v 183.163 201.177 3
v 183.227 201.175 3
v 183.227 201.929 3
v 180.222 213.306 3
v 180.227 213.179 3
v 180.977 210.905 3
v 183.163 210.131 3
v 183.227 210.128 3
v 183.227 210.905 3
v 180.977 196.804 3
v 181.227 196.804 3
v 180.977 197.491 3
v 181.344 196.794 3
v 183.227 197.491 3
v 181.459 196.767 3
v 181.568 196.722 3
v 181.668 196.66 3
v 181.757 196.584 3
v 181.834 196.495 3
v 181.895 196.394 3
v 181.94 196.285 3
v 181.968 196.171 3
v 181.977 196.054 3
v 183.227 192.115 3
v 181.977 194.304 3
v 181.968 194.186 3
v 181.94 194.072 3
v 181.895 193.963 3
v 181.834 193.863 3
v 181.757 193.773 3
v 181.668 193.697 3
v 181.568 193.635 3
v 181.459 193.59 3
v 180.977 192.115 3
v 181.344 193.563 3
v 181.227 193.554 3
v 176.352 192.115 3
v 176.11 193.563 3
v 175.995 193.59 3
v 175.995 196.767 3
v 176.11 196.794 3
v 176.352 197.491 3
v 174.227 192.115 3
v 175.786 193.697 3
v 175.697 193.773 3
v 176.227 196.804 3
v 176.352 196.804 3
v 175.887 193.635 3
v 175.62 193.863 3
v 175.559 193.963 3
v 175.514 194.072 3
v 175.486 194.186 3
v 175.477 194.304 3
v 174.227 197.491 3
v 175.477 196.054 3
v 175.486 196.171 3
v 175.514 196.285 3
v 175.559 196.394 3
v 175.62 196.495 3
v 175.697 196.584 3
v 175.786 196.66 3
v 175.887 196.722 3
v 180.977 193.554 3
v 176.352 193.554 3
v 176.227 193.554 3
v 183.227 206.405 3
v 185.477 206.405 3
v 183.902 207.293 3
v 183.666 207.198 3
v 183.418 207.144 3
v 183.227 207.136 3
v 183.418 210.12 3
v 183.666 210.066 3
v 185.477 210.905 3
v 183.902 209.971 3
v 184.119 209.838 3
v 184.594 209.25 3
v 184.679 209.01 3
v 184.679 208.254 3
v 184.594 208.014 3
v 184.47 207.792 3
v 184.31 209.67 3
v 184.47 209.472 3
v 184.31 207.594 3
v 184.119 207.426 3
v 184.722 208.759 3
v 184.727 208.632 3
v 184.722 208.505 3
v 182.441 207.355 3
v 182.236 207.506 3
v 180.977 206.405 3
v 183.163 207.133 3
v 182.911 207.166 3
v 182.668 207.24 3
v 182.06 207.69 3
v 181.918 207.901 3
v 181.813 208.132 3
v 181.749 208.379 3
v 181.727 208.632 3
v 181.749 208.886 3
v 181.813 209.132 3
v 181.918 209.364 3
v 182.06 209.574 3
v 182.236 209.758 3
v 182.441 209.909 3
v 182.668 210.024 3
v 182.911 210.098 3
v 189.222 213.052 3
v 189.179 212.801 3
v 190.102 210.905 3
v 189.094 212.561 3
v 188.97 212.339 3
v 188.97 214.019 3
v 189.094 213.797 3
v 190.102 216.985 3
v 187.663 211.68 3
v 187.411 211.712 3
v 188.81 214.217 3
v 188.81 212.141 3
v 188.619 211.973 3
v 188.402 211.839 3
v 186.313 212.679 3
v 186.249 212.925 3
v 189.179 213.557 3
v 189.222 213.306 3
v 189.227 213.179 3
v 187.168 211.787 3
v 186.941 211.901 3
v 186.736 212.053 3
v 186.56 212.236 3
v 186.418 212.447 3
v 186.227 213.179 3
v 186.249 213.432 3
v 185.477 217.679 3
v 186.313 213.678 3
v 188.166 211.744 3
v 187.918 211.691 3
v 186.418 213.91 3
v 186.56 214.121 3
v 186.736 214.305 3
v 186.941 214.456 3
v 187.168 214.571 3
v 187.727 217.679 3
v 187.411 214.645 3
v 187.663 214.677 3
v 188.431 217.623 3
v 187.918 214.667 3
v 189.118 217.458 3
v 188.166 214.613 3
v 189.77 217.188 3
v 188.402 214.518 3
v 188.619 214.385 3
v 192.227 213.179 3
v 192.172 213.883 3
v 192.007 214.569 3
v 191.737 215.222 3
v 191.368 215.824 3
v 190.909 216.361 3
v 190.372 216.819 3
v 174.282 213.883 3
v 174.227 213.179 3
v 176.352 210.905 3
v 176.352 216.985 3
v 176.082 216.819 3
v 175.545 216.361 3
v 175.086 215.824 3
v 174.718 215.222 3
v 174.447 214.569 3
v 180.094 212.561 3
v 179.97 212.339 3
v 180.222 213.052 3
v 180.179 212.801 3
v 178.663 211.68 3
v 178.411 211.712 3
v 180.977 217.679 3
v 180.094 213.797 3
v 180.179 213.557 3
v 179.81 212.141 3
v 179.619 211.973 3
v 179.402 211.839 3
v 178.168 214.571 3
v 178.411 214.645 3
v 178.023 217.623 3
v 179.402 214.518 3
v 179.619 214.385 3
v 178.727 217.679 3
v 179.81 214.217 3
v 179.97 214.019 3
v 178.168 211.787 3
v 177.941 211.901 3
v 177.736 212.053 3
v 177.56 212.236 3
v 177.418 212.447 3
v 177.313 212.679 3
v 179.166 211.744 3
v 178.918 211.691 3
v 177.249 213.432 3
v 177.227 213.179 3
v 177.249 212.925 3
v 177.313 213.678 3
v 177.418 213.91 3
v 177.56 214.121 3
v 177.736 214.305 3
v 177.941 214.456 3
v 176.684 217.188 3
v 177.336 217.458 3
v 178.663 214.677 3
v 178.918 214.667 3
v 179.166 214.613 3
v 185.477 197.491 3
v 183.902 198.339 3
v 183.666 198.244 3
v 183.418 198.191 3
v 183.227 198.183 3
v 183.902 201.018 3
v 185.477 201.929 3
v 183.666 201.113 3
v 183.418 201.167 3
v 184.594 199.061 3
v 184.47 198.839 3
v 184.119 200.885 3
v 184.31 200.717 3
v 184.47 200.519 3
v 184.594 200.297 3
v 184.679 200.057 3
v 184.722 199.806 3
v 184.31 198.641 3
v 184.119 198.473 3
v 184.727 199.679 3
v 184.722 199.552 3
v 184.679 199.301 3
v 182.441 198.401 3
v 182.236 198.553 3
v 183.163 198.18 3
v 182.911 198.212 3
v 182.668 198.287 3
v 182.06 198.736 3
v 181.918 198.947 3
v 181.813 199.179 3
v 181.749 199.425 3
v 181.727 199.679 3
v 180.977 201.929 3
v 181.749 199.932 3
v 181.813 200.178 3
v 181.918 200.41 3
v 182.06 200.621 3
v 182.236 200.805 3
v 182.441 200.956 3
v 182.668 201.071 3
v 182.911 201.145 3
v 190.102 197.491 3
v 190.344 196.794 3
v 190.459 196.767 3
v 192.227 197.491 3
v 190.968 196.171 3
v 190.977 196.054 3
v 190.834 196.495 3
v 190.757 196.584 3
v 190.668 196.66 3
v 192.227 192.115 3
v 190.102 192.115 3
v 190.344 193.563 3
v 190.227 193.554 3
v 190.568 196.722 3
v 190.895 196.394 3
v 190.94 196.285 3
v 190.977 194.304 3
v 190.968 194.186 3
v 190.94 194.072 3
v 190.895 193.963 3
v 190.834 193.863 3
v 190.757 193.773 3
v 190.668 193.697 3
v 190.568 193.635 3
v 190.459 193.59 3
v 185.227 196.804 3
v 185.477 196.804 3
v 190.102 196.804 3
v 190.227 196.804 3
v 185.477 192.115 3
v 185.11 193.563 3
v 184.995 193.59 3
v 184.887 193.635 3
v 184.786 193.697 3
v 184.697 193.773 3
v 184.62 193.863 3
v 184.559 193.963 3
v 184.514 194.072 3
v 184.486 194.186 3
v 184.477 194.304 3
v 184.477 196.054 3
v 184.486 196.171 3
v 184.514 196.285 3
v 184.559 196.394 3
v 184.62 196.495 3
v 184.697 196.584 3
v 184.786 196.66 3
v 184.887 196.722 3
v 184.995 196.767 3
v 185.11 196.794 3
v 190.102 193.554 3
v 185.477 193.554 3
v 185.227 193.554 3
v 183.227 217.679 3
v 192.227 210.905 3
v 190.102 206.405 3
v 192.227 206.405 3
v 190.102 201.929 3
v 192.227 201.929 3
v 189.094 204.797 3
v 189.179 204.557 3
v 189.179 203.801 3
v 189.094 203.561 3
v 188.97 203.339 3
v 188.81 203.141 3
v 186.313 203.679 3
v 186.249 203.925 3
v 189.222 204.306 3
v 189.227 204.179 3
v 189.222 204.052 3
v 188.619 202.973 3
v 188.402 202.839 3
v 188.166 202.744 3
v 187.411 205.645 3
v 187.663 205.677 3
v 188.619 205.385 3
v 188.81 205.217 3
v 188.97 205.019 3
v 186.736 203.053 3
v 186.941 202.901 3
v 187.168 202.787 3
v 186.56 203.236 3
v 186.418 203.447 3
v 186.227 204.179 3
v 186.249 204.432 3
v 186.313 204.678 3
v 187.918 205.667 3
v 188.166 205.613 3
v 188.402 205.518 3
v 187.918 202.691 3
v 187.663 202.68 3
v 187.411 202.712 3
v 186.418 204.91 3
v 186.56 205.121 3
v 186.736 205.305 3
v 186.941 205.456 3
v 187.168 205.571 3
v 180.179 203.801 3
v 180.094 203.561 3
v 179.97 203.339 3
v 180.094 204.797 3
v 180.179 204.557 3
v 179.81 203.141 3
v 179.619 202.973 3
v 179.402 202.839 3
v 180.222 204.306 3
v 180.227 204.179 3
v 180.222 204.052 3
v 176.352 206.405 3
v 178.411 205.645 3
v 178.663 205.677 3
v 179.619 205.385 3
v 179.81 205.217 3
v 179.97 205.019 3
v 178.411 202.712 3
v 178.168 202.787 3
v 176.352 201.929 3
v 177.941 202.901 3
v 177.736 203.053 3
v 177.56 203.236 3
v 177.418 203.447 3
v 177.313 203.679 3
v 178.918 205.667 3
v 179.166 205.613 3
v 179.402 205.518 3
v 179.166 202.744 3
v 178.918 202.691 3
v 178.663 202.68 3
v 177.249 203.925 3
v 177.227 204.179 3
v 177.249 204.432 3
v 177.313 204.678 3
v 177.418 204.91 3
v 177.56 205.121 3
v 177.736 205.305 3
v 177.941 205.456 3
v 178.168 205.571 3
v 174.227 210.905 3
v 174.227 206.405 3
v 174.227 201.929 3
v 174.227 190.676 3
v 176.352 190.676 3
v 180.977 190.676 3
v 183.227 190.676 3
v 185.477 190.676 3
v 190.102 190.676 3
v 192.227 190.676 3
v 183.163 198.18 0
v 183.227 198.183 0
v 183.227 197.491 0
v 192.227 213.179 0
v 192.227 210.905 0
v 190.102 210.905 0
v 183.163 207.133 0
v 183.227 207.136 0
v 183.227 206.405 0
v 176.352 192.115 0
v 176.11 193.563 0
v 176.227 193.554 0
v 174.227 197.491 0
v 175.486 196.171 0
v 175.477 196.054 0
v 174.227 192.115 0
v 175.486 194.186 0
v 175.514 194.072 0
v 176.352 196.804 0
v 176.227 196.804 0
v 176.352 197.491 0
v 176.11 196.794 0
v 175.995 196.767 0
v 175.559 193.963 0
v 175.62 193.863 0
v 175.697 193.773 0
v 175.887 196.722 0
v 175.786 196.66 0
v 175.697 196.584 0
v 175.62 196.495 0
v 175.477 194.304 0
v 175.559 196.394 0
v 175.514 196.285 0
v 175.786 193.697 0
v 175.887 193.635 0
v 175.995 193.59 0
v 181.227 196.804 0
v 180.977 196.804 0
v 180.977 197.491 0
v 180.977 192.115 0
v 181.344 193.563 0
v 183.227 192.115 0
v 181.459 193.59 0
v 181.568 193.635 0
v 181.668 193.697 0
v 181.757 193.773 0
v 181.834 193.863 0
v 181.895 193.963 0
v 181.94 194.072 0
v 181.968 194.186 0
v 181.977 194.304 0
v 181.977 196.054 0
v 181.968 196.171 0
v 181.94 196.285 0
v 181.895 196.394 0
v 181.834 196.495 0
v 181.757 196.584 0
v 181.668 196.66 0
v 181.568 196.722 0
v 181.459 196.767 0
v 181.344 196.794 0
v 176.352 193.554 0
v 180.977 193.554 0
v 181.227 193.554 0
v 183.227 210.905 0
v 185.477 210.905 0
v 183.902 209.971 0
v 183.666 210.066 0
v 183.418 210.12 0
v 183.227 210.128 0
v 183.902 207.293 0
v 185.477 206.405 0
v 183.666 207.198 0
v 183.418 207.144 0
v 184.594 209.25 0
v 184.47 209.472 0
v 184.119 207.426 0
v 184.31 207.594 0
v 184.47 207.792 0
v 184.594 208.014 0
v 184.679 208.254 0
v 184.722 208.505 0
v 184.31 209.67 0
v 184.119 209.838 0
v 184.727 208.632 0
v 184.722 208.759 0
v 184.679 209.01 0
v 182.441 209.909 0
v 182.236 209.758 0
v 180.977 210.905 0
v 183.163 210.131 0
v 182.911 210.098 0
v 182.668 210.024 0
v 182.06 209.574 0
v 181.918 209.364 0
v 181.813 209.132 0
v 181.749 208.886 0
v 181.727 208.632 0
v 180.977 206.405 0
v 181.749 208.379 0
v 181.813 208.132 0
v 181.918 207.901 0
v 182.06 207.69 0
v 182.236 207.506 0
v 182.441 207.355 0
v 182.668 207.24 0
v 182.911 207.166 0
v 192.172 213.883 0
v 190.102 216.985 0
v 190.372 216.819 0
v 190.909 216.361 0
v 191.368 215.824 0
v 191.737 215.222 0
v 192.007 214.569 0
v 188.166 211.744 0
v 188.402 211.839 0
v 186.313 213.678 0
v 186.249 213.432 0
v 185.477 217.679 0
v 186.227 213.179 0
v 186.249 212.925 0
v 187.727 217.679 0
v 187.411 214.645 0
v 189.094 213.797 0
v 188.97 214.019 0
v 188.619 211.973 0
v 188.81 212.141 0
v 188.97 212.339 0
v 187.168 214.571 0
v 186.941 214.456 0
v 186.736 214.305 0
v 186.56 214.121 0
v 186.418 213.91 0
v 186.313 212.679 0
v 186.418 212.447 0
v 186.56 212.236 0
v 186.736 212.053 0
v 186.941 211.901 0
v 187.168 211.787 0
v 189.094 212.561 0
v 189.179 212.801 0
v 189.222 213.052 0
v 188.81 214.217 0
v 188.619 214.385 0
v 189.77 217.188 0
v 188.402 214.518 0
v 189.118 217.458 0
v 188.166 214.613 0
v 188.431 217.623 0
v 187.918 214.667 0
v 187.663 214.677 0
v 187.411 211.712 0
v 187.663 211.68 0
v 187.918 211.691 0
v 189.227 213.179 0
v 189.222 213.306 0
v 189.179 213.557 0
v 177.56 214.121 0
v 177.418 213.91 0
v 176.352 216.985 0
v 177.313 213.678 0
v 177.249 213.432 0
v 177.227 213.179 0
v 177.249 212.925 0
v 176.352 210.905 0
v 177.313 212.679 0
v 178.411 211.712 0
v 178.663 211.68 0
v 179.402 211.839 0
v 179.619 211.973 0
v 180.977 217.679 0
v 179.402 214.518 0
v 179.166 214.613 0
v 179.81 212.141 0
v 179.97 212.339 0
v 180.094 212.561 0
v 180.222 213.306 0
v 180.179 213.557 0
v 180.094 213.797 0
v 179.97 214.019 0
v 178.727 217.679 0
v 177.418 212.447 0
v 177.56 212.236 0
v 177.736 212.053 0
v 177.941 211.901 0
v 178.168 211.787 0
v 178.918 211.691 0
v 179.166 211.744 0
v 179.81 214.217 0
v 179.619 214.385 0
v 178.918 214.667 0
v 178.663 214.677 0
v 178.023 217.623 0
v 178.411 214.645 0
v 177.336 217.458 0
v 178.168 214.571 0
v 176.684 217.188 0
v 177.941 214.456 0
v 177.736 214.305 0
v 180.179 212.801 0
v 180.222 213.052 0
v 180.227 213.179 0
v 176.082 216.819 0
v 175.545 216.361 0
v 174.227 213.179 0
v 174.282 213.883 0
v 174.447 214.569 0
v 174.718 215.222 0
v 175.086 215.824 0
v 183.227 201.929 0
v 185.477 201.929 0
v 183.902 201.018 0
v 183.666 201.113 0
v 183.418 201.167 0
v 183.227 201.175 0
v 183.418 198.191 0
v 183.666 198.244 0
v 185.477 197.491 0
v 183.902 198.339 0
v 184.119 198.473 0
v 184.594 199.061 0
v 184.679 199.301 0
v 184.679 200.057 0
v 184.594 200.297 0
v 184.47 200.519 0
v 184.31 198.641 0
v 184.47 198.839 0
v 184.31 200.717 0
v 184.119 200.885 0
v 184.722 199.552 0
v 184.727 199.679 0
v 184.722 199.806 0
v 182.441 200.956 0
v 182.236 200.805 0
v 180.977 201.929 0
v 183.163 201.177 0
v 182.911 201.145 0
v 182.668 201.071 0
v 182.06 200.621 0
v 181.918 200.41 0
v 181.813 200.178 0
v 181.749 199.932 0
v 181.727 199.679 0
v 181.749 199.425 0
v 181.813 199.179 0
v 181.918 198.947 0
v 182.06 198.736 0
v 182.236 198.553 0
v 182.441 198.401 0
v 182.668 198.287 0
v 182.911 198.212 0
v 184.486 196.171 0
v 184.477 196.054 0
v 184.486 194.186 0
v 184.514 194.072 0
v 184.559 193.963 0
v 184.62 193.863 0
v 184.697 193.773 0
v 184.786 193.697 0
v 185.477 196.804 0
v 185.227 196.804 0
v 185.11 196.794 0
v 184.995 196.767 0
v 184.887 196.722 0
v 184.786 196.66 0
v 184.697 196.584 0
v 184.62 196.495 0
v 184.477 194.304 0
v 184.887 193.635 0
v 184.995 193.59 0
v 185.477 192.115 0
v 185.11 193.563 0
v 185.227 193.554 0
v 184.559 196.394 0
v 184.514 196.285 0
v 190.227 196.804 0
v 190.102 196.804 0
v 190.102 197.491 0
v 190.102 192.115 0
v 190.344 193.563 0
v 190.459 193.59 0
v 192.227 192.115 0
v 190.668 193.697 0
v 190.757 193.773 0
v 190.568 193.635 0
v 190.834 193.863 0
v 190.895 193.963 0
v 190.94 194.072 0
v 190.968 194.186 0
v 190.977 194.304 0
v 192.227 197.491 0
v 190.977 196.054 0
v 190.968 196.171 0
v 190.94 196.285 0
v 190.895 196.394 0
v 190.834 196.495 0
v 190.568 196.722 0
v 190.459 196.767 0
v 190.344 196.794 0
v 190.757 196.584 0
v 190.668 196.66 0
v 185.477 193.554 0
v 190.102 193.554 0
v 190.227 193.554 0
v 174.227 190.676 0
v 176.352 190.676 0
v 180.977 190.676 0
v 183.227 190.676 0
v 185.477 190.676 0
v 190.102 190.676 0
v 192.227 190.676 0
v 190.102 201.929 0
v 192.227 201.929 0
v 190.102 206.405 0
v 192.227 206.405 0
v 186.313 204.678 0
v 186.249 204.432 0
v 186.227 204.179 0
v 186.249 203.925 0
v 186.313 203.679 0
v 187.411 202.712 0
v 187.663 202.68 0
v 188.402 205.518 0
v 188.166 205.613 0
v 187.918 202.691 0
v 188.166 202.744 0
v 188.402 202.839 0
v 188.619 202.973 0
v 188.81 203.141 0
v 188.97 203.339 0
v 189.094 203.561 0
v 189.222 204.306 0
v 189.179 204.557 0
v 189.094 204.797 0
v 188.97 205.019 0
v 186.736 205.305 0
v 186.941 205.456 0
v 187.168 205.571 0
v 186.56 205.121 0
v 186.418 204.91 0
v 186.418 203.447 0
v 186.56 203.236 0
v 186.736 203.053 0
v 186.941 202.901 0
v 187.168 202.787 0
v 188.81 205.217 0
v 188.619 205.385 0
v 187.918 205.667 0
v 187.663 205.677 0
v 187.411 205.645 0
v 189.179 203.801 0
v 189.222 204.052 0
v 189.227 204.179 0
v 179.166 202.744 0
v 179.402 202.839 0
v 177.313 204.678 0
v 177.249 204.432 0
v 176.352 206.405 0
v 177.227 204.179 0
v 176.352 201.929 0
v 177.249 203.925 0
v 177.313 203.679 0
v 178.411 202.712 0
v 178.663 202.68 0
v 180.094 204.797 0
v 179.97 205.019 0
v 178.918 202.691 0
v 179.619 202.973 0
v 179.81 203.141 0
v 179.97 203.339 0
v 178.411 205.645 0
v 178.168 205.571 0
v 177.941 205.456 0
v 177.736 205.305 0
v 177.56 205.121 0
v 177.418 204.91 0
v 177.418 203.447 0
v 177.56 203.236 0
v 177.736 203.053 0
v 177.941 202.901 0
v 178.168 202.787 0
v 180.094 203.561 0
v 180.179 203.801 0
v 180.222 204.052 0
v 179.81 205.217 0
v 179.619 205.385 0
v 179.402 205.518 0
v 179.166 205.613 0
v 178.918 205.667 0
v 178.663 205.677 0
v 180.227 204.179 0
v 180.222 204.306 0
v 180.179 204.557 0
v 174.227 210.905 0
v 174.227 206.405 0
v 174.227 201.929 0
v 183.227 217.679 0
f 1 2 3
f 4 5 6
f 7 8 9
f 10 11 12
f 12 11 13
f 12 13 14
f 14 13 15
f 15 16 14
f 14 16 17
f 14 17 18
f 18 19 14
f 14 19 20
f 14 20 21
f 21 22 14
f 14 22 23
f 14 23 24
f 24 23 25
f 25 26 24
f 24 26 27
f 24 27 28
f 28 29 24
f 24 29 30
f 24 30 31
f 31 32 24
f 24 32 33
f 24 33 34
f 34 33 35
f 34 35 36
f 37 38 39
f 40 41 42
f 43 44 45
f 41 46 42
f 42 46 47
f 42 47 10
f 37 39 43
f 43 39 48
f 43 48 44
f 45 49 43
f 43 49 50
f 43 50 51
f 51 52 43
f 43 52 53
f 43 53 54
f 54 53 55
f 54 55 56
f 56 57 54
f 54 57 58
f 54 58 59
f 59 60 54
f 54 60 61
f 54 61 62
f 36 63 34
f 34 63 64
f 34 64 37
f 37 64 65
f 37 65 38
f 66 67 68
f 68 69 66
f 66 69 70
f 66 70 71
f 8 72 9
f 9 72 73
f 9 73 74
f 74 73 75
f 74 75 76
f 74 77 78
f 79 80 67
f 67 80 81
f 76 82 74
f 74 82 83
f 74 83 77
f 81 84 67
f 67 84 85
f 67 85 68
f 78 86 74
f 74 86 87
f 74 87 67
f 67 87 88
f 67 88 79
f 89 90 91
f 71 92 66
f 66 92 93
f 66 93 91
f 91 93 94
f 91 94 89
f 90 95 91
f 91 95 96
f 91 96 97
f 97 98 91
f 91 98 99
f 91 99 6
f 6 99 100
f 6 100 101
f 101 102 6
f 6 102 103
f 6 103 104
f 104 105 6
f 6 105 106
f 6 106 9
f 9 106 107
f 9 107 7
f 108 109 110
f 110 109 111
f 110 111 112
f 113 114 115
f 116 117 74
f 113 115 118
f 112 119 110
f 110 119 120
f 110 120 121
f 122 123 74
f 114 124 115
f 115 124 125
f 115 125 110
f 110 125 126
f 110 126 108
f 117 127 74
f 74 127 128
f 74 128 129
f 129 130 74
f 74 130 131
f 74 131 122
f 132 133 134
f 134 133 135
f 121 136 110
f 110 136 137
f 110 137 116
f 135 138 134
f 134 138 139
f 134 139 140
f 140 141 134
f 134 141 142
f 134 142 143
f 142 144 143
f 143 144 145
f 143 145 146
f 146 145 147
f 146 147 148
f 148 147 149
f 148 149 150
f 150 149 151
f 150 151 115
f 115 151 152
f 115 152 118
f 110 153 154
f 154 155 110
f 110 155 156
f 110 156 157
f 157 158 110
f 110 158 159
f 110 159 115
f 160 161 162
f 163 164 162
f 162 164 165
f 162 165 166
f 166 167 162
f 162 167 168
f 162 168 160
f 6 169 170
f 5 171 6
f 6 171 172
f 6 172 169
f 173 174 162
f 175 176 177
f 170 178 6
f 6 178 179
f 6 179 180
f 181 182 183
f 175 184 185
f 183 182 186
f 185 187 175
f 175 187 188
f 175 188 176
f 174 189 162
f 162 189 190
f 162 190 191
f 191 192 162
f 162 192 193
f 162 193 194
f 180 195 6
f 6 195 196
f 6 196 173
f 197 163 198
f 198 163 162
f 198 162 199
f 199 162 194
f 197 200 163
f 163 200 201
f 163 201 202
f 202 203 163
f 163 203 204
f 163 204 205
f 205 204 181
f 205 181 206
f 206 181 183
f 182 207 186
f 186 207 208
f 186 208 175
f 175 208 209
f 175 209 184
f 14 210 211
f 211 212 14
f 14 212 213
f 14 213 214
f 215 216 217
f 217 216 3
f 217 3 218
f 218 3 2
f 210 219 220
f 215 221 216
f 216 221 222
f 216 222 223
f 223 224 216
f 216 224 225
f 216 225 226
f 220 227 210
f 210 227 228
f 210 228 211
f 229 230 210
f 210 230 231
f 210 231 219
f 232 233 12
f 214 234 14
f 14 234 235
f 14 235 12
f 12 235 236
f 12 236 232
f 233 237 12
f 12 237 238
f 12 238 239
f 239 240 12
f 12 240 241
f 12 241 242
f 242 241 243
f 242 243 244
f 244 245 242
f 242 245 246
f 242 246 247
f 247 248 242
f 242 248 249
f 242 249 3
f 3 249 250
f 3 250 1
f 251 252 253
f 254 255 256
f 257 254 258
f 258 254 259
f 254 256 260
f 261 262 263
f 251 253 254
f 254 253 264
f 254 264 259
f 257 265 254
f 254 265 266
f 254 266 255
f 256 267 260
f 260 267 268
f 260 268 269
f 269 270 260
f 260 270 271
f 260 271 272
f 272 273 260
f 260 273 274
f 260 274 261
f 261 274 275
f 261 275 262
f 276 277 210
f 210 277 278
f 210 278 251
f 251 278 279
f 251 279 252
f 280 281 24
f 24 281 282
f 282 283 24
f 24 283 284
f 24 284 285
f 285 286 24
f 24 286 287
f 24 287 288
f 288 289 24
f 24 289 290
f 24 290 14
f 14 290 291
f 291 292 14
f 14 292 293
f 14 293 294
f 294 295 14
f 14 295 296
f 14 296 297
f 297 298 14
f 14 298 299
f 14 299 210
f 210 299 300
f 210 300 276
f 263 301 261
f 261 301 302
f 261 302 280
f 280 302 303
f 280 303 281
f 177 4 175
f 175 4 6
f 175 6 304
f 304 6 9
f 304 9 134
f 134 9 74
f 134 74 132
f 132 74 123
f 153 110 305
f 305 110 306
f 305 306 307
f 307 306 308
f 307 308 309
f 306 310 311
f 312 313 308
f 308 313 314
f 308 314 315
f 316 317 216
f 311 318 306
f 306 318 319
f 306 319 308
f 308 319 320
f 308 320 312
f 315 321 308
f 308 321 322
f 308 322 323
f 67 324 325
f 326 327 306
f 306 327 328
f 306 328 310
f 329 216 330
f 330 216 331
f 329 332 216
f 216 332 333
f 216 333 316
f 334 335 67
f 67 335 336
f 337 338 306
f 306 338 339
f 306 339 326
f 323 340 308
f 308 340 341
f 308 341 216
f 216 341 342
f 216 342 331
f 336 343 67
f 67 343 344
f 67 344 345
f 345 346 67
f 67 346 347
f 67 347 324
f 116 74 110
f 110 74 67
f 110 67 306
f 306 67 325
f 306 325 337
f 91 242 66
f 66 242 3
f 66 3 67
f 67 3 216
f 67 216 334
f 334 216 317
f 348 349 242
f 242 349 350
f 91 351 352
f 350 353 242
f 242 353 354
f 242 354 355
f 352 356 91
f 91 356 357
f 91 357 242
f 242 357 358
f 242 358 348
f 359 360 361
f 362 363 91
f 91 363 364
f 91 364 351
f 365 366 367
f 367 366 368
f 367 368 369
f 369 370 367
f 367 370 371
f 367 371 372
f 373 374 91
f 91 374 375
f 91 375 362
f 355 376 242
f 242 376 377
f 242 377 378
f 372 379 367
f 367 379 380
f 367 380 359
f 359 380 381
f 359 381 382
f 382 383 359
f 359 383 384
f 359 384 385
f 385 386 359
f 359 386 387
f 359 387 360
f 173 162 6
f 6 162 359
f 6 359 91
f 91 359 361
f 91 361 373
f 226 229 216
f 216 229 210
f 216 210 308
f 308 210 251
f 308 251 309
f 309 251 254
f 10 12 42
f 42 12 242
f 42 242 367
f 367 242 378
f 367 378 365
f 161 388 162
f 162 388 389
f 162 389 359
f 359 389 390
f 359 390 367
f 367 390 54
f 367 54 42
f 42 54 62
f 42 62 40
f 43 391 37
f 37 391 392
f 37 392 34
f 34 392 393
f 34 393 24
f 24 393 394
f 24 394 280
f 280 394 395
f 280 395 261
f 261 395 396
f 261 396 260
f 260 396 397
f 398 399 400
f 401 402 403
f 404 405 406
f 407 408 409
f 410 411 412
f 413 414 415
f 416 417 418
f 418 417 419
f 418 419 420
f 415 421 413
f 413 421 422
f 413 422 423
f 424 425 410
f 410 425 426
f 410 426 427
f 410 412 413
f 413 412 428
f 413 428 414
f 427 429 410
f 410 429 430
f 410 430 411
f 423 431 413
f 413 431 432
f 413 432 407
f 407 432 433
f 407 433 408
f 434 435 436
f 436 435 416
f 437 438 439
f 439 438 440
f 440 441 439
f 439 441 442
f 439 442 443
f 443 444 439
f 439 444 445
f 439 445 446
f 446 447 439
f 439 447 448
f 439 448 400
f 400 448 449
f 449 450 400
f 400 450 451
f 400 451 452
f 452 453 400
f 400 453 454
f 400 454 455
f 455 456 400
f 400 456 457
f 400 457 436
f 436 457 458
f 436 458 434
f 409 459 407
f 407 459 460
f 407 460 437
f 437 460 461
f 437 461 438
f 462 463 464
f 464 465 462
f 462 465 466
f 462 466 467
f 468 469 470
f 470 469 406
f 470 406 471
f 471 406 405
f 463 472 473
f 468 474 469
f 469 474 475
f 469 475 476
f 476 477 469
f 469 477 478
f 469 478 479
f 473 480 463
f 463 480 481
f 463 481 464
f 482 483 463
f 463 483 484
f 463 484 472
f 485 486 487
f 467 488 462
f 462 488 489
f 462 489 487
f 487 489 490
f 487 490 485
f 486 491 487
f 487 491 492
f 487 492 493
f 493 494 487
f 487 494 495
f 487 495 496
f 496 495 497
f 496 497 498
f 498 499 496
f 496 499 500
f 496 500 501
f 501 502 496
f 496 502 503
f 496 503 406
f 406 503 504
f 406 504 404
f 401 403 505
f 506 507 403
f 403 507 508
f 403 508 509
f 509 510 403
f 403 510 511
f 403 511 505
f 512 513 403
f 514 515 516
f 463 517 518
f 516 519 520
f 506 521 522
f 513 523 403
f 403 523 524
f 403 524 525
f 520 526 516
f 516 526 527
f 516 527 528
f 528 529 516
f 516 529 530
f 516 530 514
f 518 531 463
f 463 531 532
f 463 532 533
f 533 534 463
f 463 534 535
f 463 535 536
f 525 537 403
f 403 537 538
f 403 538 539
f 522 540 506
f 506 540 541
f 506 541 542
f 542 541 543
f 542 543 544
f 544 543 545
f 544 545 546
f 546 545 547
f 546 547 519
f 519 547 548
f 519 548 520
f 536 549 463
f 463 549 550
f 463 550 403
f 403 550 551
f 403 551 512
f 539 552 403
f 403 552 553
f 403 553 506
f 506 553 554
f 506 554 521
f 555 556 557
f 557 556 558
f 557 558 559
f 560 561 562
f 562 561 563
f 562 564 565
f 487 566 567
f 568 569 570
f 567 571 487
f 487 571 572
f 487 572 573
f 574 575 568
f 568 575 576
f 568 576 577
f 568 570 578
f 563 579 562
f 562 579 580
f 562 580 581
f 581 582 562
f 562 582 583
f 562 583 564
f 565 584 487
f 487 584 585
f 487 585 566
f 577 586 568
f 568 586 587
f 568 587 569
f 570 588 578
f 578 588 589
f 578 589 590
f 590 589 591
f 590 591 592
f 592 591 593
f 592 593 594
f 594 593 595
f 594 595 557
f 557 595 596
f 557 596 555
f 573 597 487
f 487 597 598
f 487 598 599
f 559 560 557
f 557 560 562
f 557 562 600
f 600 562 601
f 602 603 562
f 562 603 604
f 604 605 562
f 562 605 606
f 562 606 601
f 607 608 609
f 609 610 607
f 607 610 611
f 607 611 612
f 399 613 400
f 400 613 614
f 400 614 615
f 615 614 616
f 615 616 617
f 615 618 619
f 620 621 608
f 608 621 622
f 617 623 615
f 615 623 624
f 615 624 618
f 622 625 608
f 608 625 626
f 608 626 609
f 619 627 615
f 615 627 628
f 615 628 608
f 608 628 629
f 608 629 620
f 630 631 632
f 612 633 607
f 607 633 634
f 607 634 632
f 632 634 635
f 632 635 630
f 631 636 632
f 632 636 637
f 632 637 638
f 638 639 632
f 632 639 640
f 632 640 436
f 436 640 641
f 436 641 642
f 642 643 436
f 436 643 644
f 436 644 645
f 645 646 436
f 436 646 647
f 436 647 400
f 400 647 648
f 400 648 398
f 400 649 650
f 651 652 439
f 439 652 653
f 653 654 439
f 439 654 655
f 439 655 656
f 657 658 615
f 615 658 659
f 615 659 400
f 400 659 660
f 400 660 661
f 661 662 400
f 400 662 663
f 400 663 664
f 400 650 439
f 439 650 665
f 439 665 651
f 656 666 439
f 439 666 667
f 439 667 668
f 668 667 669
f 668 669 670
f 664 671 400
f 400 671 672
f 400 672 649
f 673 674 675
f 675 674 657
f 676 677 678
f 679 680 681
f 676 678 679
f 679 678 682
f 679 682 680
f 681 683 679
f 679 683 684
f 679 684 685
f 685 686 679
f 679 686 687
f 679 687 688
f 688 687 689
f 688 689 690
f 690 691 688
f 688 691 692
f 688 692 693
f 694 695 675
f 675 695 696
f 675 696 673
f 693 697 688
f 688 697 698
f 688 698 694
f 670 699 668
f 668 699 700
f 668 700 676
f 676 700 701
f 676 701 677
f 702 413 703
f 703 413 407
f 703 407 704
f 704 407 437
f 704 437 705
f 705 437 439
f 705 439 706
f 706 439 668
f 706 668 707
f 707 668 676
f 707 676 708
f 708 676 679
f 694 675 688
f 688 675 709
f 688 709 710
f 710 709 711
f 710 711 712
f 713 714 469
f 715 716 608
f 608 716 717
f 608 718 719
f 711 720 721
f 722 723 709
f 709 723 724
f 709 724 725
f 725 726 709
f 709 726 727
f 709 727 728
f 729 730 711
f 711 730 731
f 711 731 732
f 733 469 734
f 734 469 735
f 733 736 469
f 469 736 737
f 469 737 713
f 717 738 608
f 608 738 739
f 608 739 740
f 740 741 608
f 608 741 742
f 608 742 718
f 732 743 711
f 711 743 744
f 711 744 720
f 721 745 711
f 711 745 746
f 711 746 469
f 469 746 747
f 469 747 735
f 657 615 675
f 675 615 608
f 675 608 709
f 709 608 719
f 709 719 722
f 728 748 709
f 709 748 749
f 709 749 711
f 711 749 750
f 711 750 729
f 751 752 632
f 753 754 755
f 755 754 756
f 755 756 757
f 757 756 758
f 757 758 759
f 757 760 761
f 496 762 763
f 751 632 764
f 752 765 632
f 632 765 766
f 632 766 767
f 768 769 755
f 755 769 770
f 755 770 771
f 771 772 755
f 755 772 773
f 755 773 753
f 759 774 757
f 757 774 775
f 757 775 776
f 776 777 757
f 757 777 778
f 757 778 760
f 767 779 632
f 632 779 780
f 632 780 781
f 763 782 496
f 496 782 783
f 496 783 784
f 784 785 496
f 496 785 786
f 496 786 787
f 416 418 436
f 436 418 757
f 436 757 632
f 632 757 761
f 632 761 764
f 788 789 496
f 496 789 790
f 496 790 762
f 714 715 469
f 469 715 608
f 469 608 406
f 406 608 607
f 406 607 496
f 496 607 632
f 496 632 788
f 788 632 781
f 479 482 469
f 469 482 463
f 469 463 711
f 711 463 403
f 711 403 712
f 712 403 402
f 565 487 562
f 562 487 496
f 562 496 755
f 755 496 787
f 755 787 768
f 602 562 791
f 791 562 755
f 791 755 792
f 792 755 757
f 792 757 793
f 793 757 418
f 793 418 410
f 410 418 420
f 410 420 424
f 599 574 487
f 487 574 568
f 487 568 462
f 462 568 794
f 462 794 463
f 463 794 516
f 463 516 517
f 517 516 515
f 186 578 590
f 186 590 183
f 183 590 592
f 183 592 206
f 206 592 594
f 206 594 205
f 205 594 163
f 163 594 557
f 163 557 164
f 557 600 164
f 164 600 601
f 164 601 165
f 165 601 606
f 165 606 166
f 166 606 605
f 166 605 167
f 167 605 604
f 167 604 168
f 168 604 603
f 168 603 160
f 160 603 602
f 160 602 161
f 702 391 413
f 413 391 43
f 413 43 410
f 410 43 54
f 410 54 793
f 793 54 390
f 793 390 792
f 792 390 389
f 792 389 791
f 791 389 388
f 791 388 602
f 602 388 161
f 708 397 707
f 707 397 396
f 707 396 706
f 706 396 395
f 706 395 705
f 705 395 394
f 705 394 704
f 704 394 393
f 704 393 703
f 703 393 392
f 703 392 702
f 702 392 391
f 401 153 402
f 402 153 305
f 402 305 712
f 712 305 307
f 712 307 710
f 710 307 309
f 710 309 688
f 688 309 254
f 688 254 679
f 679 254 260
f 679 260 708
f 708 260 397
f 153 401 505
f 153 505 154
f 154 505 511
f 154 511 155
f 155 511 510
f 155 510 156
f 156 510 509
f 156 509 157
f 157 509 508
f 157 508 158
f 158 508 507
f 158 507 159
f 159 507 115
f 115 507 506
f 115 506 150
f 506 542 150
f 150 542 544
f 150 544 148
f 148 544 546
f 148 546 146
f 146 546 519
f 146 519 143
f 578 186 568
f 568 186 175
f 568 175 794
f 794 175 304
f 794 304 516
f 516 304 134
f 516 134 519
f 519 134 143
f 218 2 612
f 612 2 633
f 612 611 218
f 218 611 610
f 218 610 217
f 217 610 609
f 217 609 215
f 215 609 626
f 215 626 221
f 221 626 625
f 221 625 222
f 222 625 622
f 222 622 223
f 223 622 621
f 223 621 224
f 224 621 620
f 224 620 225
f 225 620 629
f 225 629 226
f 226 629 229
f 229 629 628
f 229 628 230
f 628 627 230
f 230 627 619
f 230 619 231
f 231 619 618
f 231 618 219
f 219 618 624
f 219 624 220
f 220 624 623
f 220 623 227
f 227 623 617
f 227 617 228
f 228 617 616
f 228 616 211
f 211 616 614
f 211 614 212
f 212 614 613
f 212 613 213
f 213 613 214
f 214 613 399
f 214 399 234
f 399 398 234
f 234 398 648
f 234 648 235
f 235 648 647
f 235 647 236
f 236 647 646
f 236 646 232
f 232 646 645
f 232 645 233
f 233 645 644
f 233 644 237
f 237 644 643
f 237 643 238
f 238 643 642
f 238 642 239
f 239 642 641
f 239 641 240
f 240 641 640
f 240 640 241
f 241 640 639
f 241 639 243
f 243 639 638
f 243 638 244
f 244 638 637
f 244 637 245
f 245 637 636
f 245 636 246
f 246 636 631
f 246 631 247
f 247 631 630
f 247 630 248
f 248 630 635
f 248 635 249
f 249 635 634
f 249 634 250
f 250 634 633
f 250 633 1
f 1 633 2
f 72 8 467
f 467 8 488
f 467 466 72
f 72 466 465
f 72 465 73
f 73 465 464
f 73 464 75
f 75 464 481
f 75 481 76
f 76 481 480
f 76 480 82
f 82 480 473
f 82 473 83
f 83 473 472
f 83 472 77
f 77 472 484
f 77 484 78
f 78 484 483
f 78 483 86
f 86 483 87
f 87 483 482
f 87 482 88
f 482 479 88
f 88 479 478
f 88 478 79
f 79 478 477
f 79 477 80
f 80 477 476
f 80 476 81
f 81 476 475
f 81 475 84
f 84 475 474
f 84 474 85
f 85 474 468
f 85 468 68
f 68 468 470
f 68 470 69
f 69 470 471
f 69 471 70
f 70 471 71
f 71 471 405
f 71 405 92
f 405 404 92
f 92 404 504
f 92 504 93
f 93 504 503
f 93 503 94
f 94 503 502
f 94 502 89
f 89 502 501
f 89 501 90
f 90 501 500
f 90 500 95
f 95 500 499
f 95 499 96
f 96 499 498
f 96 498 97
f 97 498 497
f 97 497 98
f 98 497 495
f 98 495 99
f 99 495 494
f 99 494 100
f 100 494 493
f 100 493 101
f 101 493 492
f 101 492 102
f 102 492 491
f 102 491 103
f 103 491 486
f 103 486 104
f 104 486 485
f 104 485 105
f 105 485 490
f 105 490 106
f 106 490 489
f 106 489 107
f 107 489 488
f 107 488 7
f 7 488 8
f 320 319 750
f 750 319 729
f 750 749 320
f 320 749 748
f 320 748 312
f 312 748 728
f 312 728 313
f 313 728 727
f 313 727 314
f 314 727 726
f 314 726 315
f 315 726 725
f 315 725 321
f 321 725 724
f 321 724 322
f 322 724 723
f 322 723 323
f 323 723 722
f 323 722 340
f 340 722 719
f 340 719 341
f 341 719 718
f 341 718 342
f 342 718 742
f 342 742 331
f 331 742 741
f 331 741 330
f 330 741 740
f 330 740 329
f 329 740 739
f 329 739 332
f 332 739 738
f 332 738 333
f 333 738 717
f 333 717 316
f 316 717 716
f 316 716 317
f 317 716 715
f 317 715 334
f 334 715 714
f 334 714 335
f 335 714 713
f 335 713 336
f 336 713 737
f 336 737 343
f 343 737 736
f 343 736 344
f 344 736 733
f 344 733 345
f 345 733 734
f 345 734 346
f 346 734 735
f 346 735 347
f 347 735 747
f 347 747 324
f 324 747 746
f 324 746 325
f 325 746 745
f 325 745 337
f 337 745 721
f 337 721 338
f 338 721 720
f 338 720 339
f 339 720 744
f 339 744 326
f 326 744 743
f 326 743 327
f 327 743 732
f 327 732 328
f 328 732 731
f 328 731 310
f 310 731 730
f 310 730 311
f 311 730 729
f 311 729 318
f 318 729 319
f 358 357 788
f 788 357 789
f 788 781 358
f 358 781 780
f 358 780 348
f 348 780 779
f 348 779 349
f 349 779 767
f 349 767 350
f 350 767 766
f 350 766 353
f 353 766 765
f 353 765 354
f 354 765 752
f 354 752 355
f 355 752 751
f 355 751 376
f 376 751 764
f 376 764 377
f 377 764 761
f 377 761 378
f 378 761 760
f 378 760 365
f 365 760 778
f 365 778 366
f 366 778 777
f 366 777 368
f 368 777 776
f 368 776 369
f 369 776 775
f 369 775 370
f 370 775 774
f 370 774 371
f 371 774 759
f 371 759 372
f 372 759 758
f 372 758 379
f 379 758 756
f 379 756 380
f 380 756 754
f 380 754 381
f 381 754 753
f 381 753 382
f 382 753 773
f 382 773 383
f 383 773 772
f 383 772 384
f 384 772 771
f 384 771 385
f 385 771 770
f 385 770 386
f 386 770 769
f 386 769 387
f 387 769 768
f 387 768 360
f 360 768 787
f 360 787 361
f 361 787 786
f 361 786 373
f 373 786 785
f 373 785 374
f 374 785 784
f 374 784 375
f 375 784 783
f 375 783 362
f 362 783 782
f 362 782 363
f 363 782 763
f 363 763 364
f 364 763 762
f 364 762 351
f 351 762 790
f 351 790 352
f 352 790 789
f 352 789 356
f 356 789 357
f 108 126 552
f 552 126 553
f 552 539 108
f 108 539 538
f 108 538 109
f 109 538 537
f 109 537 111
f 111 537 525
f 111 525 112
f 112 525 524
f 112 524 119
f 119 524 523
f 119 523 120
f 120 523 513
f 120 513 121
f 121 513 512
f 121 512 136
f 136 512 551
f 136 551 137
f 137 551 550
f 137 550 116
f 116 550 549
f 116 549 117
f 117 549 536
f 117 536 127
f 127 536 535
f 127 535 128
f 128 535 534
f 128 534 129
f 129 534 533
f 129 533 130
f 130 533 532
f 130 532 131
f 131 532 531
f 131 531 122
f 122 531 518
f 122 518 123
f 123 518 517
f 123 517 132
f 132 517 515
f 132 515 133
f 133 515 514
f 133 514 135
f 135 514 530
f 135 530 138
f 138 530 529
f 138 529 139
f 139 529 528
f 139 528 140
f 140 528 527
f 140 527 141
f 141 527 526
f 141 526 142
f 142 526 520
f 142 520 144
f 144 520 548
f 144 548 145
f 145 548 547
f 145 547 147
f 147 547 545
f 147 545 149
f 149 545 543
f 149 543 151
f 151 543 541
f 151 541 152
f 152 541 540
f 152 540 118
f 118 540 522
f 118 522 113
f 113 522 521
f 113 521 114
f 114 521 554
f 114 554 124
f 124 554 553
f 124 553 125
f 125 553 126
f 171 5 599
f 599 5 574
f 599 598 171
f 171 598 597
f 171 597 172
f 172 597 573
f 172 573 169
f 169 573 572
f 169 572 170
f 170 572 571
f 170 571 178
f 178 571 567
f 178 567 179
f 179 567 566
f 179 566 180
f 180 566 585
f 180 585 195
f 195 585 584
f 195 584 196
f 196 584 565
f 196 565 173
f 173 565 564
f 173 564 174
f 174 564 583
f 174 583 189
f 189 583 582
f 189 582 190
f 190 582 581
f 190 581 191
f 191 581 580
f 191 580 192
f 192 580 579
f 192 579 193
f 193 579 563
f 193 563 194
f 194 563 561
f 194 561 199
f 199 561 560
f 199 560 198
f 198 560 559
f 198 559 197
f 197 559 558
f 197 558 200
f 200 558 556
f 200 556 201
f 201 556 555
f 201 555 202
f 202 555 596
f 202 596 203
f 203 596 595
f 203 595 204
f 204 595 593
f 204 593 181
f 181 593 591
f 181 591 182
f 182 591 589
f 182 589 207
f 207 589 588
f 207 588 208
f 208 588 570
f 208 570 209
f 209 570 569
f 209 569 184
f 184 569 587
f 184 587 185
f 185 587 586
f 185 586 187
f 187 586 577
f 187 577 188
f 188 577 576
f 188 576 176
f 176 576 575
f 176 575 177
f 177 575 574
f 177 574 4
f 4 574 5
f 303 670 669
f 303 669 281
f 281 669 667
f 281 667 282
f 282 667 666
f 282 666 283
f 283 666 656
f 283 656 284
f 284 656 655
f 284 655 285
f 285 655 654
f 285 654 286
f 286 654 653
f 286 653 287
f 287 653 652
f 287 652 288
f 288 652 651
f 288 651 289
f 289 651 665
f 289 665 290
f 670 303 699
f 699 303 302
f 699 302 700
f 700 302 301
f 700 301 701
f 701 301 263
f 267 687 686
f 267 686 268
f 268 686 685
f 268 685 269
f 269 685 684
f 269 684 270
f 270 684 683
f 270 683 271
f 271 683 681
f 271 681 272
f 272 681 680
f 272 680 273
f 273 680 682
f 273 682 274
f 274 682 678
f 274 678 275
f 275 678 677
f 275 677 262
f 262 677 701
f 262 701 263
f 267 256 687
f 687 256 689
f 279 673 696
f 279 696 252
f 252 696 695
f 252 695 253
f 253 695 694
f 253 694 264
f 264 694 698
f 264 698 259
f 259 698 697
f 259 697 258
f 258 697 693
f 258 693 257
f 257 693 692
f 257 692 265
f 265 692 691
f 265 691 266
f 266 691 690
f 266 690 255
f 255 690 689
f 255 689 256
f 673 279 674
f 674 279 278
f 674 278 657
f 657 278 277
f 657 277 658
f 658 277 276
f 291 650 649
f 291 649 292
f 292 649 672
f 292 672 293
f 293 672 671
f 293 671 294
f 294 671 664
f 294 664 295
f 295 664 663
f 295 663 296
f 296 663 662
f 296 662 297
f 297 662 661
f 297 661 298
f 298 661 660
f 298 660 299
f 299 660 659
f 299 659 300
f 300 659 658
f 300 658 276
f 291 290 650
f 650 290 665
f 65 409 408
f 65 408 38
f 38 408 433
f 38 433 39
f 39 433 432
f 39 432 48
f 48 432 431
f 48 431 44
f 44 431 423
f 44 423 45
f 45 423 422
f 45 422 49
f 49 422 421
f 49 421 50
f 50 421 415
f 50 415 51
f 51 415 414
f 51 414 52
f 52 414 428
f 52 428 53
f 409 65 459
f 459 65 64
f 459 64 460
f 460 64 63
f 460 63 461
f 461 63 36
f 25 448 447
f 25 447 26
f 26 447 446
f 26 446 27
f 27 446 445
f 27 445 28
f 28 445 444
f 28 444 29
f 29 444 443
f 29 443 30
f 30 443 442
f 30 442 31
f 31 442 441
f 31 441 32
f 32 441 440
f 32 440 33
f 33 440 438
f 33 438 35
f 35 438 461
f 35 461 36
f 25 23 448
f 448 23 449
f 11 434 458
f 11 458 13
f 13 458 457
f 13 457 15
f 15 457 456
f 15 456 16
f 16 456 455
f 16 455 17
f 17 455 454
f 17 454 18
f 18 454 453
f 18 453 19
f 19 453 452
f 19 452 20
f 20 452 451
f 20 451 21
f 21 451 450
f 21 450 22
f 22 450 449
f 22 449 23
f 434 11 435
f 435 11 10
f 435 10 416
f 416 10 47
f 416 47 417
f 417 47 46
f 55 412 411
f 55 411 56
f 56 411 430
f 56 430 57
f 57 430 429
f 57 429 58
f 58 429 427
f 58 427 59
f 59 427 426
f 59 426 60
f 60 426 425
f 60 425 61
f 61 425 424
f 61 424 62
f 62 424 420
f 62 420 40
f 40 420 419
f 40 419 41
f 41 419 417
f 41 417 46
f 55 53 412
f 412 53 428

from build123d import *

# Parameters (mm, degrees)
MODEL_R                 = 1.5
SALIENTE_EXTRUIR1_DEPTH = 3


with BuildPart() as part:
    # Model → Saliente-Extruir1 (new body)
    with BuildSketch(Plane.XY):
        with BuildLine():
            Line((174.227054575, 190.675884941), (192.227054575, 190.675884941))
            Line((192.227054575, 190.675884941), (192.227054575, 213.178720063))
            ThreePointArc((192.227054575, 213.178720063), (190.90903509, 216.360700578), (187.727054575, 217.678720063))
            Line((187.727054575, 217.678720063), (178.727054575, 217.678720063))
            ThreePointArc((178.727054575, 217.678720063), (175.545074059, 216.360700578), (174.227054575, 213.178720063))
            Line((174.227054575, 213.178720063), (174.227054575, 190.675884941))
        make_face()
        with Locations((183.227054575, 199.678720063)):
            Circle(MODEL_R, mode=Mode.SUBTRACT)
        with Locations((183.227054575, 208.632069818)):
            Circle(MODEL_R, mode=Mode.SUBTRACT)
        with Locations((187.727054575, 204.178720063)):
            Circle(MODEL_R, mode=Mode.SUBTRACT)
        with Locations((178.727054575, 204.178720063)):
            Circle(MODEL_R, mode=Mode.SUBTRACT)
        with Locations((187.727054575, 213.178720063)):
            Circle(MODEL_R, mode=Mode.SUBTRACT)
        with Locations((178.727054575, 213.178720063)):
            Circle(MODEL_R, mode=Mode.SUBTRACT)
        with BuildLine():
            Line((190.227058417, 193.553720063), (185.227058417, 193.553720063))
            ThreePointArc((185.227058417, 193.553720063), (184.696728331, 193.773389977), (184.477058417, 194.303720063))
            Line((184.477058417, 194.303720063), (184.477058417, 196.053720063))
            ThreePointArc((184.477058417, 196.053720063), (184.696728331, 196.584050149), (185.227058417, 196.803720063))
            Line((185.227058417, 196.803720063), (190.227058417, 196.803720063))
            ThreePointArc((190.227058417, 196.803720063), (190.757388503, 196.584050149), (190.977058417, 196.053720063))
            Line((190.977058417, 196.053720063), (190.977058417, 194.303720063))
            ThreePointArc((190.977058417, 194.303720063), (190.757388503, 193.773389977), (190.227058417, 193.553720063))
        make_face(mode=Mode.SUBTRACT)
        with BuildLine():
            Line((181.227058417, 193.553720063), (176.227058417, 193.553720063))
            ThreePointArc((176.227058417, 193.553720063), (175.696728331, 193.773389977), (175.477058417, 194.303720063))
            Line((175.477058417, 194.303720063), (175.477058417, 196.053720063))
            ThreePointArc((175.477058417, 196.053720063), (175.696728331, 196.584050149), (176.227058417, 196.803720063))
            Line((176.227058417, 196.803720063), (181.227058417, 196.803720063))
            ThreePointArc((181.227058417, 196.803720063), (181.757388503, 196.584050149), (181.977058417, 196.053720063))
            Line((181.977058417, 196.053720063), (181.977058417, 194.303720063))
            ThreePointArc((181.977058417, 194.303720063), (181.757388503, 193.773389977), (181.227058417, 193.553720063))
        make_face(mode=Mode.SUBTRACT)
    extrude(amount=SALIENTE_EXTRUIR1_DEPTH)


solid = part.part
